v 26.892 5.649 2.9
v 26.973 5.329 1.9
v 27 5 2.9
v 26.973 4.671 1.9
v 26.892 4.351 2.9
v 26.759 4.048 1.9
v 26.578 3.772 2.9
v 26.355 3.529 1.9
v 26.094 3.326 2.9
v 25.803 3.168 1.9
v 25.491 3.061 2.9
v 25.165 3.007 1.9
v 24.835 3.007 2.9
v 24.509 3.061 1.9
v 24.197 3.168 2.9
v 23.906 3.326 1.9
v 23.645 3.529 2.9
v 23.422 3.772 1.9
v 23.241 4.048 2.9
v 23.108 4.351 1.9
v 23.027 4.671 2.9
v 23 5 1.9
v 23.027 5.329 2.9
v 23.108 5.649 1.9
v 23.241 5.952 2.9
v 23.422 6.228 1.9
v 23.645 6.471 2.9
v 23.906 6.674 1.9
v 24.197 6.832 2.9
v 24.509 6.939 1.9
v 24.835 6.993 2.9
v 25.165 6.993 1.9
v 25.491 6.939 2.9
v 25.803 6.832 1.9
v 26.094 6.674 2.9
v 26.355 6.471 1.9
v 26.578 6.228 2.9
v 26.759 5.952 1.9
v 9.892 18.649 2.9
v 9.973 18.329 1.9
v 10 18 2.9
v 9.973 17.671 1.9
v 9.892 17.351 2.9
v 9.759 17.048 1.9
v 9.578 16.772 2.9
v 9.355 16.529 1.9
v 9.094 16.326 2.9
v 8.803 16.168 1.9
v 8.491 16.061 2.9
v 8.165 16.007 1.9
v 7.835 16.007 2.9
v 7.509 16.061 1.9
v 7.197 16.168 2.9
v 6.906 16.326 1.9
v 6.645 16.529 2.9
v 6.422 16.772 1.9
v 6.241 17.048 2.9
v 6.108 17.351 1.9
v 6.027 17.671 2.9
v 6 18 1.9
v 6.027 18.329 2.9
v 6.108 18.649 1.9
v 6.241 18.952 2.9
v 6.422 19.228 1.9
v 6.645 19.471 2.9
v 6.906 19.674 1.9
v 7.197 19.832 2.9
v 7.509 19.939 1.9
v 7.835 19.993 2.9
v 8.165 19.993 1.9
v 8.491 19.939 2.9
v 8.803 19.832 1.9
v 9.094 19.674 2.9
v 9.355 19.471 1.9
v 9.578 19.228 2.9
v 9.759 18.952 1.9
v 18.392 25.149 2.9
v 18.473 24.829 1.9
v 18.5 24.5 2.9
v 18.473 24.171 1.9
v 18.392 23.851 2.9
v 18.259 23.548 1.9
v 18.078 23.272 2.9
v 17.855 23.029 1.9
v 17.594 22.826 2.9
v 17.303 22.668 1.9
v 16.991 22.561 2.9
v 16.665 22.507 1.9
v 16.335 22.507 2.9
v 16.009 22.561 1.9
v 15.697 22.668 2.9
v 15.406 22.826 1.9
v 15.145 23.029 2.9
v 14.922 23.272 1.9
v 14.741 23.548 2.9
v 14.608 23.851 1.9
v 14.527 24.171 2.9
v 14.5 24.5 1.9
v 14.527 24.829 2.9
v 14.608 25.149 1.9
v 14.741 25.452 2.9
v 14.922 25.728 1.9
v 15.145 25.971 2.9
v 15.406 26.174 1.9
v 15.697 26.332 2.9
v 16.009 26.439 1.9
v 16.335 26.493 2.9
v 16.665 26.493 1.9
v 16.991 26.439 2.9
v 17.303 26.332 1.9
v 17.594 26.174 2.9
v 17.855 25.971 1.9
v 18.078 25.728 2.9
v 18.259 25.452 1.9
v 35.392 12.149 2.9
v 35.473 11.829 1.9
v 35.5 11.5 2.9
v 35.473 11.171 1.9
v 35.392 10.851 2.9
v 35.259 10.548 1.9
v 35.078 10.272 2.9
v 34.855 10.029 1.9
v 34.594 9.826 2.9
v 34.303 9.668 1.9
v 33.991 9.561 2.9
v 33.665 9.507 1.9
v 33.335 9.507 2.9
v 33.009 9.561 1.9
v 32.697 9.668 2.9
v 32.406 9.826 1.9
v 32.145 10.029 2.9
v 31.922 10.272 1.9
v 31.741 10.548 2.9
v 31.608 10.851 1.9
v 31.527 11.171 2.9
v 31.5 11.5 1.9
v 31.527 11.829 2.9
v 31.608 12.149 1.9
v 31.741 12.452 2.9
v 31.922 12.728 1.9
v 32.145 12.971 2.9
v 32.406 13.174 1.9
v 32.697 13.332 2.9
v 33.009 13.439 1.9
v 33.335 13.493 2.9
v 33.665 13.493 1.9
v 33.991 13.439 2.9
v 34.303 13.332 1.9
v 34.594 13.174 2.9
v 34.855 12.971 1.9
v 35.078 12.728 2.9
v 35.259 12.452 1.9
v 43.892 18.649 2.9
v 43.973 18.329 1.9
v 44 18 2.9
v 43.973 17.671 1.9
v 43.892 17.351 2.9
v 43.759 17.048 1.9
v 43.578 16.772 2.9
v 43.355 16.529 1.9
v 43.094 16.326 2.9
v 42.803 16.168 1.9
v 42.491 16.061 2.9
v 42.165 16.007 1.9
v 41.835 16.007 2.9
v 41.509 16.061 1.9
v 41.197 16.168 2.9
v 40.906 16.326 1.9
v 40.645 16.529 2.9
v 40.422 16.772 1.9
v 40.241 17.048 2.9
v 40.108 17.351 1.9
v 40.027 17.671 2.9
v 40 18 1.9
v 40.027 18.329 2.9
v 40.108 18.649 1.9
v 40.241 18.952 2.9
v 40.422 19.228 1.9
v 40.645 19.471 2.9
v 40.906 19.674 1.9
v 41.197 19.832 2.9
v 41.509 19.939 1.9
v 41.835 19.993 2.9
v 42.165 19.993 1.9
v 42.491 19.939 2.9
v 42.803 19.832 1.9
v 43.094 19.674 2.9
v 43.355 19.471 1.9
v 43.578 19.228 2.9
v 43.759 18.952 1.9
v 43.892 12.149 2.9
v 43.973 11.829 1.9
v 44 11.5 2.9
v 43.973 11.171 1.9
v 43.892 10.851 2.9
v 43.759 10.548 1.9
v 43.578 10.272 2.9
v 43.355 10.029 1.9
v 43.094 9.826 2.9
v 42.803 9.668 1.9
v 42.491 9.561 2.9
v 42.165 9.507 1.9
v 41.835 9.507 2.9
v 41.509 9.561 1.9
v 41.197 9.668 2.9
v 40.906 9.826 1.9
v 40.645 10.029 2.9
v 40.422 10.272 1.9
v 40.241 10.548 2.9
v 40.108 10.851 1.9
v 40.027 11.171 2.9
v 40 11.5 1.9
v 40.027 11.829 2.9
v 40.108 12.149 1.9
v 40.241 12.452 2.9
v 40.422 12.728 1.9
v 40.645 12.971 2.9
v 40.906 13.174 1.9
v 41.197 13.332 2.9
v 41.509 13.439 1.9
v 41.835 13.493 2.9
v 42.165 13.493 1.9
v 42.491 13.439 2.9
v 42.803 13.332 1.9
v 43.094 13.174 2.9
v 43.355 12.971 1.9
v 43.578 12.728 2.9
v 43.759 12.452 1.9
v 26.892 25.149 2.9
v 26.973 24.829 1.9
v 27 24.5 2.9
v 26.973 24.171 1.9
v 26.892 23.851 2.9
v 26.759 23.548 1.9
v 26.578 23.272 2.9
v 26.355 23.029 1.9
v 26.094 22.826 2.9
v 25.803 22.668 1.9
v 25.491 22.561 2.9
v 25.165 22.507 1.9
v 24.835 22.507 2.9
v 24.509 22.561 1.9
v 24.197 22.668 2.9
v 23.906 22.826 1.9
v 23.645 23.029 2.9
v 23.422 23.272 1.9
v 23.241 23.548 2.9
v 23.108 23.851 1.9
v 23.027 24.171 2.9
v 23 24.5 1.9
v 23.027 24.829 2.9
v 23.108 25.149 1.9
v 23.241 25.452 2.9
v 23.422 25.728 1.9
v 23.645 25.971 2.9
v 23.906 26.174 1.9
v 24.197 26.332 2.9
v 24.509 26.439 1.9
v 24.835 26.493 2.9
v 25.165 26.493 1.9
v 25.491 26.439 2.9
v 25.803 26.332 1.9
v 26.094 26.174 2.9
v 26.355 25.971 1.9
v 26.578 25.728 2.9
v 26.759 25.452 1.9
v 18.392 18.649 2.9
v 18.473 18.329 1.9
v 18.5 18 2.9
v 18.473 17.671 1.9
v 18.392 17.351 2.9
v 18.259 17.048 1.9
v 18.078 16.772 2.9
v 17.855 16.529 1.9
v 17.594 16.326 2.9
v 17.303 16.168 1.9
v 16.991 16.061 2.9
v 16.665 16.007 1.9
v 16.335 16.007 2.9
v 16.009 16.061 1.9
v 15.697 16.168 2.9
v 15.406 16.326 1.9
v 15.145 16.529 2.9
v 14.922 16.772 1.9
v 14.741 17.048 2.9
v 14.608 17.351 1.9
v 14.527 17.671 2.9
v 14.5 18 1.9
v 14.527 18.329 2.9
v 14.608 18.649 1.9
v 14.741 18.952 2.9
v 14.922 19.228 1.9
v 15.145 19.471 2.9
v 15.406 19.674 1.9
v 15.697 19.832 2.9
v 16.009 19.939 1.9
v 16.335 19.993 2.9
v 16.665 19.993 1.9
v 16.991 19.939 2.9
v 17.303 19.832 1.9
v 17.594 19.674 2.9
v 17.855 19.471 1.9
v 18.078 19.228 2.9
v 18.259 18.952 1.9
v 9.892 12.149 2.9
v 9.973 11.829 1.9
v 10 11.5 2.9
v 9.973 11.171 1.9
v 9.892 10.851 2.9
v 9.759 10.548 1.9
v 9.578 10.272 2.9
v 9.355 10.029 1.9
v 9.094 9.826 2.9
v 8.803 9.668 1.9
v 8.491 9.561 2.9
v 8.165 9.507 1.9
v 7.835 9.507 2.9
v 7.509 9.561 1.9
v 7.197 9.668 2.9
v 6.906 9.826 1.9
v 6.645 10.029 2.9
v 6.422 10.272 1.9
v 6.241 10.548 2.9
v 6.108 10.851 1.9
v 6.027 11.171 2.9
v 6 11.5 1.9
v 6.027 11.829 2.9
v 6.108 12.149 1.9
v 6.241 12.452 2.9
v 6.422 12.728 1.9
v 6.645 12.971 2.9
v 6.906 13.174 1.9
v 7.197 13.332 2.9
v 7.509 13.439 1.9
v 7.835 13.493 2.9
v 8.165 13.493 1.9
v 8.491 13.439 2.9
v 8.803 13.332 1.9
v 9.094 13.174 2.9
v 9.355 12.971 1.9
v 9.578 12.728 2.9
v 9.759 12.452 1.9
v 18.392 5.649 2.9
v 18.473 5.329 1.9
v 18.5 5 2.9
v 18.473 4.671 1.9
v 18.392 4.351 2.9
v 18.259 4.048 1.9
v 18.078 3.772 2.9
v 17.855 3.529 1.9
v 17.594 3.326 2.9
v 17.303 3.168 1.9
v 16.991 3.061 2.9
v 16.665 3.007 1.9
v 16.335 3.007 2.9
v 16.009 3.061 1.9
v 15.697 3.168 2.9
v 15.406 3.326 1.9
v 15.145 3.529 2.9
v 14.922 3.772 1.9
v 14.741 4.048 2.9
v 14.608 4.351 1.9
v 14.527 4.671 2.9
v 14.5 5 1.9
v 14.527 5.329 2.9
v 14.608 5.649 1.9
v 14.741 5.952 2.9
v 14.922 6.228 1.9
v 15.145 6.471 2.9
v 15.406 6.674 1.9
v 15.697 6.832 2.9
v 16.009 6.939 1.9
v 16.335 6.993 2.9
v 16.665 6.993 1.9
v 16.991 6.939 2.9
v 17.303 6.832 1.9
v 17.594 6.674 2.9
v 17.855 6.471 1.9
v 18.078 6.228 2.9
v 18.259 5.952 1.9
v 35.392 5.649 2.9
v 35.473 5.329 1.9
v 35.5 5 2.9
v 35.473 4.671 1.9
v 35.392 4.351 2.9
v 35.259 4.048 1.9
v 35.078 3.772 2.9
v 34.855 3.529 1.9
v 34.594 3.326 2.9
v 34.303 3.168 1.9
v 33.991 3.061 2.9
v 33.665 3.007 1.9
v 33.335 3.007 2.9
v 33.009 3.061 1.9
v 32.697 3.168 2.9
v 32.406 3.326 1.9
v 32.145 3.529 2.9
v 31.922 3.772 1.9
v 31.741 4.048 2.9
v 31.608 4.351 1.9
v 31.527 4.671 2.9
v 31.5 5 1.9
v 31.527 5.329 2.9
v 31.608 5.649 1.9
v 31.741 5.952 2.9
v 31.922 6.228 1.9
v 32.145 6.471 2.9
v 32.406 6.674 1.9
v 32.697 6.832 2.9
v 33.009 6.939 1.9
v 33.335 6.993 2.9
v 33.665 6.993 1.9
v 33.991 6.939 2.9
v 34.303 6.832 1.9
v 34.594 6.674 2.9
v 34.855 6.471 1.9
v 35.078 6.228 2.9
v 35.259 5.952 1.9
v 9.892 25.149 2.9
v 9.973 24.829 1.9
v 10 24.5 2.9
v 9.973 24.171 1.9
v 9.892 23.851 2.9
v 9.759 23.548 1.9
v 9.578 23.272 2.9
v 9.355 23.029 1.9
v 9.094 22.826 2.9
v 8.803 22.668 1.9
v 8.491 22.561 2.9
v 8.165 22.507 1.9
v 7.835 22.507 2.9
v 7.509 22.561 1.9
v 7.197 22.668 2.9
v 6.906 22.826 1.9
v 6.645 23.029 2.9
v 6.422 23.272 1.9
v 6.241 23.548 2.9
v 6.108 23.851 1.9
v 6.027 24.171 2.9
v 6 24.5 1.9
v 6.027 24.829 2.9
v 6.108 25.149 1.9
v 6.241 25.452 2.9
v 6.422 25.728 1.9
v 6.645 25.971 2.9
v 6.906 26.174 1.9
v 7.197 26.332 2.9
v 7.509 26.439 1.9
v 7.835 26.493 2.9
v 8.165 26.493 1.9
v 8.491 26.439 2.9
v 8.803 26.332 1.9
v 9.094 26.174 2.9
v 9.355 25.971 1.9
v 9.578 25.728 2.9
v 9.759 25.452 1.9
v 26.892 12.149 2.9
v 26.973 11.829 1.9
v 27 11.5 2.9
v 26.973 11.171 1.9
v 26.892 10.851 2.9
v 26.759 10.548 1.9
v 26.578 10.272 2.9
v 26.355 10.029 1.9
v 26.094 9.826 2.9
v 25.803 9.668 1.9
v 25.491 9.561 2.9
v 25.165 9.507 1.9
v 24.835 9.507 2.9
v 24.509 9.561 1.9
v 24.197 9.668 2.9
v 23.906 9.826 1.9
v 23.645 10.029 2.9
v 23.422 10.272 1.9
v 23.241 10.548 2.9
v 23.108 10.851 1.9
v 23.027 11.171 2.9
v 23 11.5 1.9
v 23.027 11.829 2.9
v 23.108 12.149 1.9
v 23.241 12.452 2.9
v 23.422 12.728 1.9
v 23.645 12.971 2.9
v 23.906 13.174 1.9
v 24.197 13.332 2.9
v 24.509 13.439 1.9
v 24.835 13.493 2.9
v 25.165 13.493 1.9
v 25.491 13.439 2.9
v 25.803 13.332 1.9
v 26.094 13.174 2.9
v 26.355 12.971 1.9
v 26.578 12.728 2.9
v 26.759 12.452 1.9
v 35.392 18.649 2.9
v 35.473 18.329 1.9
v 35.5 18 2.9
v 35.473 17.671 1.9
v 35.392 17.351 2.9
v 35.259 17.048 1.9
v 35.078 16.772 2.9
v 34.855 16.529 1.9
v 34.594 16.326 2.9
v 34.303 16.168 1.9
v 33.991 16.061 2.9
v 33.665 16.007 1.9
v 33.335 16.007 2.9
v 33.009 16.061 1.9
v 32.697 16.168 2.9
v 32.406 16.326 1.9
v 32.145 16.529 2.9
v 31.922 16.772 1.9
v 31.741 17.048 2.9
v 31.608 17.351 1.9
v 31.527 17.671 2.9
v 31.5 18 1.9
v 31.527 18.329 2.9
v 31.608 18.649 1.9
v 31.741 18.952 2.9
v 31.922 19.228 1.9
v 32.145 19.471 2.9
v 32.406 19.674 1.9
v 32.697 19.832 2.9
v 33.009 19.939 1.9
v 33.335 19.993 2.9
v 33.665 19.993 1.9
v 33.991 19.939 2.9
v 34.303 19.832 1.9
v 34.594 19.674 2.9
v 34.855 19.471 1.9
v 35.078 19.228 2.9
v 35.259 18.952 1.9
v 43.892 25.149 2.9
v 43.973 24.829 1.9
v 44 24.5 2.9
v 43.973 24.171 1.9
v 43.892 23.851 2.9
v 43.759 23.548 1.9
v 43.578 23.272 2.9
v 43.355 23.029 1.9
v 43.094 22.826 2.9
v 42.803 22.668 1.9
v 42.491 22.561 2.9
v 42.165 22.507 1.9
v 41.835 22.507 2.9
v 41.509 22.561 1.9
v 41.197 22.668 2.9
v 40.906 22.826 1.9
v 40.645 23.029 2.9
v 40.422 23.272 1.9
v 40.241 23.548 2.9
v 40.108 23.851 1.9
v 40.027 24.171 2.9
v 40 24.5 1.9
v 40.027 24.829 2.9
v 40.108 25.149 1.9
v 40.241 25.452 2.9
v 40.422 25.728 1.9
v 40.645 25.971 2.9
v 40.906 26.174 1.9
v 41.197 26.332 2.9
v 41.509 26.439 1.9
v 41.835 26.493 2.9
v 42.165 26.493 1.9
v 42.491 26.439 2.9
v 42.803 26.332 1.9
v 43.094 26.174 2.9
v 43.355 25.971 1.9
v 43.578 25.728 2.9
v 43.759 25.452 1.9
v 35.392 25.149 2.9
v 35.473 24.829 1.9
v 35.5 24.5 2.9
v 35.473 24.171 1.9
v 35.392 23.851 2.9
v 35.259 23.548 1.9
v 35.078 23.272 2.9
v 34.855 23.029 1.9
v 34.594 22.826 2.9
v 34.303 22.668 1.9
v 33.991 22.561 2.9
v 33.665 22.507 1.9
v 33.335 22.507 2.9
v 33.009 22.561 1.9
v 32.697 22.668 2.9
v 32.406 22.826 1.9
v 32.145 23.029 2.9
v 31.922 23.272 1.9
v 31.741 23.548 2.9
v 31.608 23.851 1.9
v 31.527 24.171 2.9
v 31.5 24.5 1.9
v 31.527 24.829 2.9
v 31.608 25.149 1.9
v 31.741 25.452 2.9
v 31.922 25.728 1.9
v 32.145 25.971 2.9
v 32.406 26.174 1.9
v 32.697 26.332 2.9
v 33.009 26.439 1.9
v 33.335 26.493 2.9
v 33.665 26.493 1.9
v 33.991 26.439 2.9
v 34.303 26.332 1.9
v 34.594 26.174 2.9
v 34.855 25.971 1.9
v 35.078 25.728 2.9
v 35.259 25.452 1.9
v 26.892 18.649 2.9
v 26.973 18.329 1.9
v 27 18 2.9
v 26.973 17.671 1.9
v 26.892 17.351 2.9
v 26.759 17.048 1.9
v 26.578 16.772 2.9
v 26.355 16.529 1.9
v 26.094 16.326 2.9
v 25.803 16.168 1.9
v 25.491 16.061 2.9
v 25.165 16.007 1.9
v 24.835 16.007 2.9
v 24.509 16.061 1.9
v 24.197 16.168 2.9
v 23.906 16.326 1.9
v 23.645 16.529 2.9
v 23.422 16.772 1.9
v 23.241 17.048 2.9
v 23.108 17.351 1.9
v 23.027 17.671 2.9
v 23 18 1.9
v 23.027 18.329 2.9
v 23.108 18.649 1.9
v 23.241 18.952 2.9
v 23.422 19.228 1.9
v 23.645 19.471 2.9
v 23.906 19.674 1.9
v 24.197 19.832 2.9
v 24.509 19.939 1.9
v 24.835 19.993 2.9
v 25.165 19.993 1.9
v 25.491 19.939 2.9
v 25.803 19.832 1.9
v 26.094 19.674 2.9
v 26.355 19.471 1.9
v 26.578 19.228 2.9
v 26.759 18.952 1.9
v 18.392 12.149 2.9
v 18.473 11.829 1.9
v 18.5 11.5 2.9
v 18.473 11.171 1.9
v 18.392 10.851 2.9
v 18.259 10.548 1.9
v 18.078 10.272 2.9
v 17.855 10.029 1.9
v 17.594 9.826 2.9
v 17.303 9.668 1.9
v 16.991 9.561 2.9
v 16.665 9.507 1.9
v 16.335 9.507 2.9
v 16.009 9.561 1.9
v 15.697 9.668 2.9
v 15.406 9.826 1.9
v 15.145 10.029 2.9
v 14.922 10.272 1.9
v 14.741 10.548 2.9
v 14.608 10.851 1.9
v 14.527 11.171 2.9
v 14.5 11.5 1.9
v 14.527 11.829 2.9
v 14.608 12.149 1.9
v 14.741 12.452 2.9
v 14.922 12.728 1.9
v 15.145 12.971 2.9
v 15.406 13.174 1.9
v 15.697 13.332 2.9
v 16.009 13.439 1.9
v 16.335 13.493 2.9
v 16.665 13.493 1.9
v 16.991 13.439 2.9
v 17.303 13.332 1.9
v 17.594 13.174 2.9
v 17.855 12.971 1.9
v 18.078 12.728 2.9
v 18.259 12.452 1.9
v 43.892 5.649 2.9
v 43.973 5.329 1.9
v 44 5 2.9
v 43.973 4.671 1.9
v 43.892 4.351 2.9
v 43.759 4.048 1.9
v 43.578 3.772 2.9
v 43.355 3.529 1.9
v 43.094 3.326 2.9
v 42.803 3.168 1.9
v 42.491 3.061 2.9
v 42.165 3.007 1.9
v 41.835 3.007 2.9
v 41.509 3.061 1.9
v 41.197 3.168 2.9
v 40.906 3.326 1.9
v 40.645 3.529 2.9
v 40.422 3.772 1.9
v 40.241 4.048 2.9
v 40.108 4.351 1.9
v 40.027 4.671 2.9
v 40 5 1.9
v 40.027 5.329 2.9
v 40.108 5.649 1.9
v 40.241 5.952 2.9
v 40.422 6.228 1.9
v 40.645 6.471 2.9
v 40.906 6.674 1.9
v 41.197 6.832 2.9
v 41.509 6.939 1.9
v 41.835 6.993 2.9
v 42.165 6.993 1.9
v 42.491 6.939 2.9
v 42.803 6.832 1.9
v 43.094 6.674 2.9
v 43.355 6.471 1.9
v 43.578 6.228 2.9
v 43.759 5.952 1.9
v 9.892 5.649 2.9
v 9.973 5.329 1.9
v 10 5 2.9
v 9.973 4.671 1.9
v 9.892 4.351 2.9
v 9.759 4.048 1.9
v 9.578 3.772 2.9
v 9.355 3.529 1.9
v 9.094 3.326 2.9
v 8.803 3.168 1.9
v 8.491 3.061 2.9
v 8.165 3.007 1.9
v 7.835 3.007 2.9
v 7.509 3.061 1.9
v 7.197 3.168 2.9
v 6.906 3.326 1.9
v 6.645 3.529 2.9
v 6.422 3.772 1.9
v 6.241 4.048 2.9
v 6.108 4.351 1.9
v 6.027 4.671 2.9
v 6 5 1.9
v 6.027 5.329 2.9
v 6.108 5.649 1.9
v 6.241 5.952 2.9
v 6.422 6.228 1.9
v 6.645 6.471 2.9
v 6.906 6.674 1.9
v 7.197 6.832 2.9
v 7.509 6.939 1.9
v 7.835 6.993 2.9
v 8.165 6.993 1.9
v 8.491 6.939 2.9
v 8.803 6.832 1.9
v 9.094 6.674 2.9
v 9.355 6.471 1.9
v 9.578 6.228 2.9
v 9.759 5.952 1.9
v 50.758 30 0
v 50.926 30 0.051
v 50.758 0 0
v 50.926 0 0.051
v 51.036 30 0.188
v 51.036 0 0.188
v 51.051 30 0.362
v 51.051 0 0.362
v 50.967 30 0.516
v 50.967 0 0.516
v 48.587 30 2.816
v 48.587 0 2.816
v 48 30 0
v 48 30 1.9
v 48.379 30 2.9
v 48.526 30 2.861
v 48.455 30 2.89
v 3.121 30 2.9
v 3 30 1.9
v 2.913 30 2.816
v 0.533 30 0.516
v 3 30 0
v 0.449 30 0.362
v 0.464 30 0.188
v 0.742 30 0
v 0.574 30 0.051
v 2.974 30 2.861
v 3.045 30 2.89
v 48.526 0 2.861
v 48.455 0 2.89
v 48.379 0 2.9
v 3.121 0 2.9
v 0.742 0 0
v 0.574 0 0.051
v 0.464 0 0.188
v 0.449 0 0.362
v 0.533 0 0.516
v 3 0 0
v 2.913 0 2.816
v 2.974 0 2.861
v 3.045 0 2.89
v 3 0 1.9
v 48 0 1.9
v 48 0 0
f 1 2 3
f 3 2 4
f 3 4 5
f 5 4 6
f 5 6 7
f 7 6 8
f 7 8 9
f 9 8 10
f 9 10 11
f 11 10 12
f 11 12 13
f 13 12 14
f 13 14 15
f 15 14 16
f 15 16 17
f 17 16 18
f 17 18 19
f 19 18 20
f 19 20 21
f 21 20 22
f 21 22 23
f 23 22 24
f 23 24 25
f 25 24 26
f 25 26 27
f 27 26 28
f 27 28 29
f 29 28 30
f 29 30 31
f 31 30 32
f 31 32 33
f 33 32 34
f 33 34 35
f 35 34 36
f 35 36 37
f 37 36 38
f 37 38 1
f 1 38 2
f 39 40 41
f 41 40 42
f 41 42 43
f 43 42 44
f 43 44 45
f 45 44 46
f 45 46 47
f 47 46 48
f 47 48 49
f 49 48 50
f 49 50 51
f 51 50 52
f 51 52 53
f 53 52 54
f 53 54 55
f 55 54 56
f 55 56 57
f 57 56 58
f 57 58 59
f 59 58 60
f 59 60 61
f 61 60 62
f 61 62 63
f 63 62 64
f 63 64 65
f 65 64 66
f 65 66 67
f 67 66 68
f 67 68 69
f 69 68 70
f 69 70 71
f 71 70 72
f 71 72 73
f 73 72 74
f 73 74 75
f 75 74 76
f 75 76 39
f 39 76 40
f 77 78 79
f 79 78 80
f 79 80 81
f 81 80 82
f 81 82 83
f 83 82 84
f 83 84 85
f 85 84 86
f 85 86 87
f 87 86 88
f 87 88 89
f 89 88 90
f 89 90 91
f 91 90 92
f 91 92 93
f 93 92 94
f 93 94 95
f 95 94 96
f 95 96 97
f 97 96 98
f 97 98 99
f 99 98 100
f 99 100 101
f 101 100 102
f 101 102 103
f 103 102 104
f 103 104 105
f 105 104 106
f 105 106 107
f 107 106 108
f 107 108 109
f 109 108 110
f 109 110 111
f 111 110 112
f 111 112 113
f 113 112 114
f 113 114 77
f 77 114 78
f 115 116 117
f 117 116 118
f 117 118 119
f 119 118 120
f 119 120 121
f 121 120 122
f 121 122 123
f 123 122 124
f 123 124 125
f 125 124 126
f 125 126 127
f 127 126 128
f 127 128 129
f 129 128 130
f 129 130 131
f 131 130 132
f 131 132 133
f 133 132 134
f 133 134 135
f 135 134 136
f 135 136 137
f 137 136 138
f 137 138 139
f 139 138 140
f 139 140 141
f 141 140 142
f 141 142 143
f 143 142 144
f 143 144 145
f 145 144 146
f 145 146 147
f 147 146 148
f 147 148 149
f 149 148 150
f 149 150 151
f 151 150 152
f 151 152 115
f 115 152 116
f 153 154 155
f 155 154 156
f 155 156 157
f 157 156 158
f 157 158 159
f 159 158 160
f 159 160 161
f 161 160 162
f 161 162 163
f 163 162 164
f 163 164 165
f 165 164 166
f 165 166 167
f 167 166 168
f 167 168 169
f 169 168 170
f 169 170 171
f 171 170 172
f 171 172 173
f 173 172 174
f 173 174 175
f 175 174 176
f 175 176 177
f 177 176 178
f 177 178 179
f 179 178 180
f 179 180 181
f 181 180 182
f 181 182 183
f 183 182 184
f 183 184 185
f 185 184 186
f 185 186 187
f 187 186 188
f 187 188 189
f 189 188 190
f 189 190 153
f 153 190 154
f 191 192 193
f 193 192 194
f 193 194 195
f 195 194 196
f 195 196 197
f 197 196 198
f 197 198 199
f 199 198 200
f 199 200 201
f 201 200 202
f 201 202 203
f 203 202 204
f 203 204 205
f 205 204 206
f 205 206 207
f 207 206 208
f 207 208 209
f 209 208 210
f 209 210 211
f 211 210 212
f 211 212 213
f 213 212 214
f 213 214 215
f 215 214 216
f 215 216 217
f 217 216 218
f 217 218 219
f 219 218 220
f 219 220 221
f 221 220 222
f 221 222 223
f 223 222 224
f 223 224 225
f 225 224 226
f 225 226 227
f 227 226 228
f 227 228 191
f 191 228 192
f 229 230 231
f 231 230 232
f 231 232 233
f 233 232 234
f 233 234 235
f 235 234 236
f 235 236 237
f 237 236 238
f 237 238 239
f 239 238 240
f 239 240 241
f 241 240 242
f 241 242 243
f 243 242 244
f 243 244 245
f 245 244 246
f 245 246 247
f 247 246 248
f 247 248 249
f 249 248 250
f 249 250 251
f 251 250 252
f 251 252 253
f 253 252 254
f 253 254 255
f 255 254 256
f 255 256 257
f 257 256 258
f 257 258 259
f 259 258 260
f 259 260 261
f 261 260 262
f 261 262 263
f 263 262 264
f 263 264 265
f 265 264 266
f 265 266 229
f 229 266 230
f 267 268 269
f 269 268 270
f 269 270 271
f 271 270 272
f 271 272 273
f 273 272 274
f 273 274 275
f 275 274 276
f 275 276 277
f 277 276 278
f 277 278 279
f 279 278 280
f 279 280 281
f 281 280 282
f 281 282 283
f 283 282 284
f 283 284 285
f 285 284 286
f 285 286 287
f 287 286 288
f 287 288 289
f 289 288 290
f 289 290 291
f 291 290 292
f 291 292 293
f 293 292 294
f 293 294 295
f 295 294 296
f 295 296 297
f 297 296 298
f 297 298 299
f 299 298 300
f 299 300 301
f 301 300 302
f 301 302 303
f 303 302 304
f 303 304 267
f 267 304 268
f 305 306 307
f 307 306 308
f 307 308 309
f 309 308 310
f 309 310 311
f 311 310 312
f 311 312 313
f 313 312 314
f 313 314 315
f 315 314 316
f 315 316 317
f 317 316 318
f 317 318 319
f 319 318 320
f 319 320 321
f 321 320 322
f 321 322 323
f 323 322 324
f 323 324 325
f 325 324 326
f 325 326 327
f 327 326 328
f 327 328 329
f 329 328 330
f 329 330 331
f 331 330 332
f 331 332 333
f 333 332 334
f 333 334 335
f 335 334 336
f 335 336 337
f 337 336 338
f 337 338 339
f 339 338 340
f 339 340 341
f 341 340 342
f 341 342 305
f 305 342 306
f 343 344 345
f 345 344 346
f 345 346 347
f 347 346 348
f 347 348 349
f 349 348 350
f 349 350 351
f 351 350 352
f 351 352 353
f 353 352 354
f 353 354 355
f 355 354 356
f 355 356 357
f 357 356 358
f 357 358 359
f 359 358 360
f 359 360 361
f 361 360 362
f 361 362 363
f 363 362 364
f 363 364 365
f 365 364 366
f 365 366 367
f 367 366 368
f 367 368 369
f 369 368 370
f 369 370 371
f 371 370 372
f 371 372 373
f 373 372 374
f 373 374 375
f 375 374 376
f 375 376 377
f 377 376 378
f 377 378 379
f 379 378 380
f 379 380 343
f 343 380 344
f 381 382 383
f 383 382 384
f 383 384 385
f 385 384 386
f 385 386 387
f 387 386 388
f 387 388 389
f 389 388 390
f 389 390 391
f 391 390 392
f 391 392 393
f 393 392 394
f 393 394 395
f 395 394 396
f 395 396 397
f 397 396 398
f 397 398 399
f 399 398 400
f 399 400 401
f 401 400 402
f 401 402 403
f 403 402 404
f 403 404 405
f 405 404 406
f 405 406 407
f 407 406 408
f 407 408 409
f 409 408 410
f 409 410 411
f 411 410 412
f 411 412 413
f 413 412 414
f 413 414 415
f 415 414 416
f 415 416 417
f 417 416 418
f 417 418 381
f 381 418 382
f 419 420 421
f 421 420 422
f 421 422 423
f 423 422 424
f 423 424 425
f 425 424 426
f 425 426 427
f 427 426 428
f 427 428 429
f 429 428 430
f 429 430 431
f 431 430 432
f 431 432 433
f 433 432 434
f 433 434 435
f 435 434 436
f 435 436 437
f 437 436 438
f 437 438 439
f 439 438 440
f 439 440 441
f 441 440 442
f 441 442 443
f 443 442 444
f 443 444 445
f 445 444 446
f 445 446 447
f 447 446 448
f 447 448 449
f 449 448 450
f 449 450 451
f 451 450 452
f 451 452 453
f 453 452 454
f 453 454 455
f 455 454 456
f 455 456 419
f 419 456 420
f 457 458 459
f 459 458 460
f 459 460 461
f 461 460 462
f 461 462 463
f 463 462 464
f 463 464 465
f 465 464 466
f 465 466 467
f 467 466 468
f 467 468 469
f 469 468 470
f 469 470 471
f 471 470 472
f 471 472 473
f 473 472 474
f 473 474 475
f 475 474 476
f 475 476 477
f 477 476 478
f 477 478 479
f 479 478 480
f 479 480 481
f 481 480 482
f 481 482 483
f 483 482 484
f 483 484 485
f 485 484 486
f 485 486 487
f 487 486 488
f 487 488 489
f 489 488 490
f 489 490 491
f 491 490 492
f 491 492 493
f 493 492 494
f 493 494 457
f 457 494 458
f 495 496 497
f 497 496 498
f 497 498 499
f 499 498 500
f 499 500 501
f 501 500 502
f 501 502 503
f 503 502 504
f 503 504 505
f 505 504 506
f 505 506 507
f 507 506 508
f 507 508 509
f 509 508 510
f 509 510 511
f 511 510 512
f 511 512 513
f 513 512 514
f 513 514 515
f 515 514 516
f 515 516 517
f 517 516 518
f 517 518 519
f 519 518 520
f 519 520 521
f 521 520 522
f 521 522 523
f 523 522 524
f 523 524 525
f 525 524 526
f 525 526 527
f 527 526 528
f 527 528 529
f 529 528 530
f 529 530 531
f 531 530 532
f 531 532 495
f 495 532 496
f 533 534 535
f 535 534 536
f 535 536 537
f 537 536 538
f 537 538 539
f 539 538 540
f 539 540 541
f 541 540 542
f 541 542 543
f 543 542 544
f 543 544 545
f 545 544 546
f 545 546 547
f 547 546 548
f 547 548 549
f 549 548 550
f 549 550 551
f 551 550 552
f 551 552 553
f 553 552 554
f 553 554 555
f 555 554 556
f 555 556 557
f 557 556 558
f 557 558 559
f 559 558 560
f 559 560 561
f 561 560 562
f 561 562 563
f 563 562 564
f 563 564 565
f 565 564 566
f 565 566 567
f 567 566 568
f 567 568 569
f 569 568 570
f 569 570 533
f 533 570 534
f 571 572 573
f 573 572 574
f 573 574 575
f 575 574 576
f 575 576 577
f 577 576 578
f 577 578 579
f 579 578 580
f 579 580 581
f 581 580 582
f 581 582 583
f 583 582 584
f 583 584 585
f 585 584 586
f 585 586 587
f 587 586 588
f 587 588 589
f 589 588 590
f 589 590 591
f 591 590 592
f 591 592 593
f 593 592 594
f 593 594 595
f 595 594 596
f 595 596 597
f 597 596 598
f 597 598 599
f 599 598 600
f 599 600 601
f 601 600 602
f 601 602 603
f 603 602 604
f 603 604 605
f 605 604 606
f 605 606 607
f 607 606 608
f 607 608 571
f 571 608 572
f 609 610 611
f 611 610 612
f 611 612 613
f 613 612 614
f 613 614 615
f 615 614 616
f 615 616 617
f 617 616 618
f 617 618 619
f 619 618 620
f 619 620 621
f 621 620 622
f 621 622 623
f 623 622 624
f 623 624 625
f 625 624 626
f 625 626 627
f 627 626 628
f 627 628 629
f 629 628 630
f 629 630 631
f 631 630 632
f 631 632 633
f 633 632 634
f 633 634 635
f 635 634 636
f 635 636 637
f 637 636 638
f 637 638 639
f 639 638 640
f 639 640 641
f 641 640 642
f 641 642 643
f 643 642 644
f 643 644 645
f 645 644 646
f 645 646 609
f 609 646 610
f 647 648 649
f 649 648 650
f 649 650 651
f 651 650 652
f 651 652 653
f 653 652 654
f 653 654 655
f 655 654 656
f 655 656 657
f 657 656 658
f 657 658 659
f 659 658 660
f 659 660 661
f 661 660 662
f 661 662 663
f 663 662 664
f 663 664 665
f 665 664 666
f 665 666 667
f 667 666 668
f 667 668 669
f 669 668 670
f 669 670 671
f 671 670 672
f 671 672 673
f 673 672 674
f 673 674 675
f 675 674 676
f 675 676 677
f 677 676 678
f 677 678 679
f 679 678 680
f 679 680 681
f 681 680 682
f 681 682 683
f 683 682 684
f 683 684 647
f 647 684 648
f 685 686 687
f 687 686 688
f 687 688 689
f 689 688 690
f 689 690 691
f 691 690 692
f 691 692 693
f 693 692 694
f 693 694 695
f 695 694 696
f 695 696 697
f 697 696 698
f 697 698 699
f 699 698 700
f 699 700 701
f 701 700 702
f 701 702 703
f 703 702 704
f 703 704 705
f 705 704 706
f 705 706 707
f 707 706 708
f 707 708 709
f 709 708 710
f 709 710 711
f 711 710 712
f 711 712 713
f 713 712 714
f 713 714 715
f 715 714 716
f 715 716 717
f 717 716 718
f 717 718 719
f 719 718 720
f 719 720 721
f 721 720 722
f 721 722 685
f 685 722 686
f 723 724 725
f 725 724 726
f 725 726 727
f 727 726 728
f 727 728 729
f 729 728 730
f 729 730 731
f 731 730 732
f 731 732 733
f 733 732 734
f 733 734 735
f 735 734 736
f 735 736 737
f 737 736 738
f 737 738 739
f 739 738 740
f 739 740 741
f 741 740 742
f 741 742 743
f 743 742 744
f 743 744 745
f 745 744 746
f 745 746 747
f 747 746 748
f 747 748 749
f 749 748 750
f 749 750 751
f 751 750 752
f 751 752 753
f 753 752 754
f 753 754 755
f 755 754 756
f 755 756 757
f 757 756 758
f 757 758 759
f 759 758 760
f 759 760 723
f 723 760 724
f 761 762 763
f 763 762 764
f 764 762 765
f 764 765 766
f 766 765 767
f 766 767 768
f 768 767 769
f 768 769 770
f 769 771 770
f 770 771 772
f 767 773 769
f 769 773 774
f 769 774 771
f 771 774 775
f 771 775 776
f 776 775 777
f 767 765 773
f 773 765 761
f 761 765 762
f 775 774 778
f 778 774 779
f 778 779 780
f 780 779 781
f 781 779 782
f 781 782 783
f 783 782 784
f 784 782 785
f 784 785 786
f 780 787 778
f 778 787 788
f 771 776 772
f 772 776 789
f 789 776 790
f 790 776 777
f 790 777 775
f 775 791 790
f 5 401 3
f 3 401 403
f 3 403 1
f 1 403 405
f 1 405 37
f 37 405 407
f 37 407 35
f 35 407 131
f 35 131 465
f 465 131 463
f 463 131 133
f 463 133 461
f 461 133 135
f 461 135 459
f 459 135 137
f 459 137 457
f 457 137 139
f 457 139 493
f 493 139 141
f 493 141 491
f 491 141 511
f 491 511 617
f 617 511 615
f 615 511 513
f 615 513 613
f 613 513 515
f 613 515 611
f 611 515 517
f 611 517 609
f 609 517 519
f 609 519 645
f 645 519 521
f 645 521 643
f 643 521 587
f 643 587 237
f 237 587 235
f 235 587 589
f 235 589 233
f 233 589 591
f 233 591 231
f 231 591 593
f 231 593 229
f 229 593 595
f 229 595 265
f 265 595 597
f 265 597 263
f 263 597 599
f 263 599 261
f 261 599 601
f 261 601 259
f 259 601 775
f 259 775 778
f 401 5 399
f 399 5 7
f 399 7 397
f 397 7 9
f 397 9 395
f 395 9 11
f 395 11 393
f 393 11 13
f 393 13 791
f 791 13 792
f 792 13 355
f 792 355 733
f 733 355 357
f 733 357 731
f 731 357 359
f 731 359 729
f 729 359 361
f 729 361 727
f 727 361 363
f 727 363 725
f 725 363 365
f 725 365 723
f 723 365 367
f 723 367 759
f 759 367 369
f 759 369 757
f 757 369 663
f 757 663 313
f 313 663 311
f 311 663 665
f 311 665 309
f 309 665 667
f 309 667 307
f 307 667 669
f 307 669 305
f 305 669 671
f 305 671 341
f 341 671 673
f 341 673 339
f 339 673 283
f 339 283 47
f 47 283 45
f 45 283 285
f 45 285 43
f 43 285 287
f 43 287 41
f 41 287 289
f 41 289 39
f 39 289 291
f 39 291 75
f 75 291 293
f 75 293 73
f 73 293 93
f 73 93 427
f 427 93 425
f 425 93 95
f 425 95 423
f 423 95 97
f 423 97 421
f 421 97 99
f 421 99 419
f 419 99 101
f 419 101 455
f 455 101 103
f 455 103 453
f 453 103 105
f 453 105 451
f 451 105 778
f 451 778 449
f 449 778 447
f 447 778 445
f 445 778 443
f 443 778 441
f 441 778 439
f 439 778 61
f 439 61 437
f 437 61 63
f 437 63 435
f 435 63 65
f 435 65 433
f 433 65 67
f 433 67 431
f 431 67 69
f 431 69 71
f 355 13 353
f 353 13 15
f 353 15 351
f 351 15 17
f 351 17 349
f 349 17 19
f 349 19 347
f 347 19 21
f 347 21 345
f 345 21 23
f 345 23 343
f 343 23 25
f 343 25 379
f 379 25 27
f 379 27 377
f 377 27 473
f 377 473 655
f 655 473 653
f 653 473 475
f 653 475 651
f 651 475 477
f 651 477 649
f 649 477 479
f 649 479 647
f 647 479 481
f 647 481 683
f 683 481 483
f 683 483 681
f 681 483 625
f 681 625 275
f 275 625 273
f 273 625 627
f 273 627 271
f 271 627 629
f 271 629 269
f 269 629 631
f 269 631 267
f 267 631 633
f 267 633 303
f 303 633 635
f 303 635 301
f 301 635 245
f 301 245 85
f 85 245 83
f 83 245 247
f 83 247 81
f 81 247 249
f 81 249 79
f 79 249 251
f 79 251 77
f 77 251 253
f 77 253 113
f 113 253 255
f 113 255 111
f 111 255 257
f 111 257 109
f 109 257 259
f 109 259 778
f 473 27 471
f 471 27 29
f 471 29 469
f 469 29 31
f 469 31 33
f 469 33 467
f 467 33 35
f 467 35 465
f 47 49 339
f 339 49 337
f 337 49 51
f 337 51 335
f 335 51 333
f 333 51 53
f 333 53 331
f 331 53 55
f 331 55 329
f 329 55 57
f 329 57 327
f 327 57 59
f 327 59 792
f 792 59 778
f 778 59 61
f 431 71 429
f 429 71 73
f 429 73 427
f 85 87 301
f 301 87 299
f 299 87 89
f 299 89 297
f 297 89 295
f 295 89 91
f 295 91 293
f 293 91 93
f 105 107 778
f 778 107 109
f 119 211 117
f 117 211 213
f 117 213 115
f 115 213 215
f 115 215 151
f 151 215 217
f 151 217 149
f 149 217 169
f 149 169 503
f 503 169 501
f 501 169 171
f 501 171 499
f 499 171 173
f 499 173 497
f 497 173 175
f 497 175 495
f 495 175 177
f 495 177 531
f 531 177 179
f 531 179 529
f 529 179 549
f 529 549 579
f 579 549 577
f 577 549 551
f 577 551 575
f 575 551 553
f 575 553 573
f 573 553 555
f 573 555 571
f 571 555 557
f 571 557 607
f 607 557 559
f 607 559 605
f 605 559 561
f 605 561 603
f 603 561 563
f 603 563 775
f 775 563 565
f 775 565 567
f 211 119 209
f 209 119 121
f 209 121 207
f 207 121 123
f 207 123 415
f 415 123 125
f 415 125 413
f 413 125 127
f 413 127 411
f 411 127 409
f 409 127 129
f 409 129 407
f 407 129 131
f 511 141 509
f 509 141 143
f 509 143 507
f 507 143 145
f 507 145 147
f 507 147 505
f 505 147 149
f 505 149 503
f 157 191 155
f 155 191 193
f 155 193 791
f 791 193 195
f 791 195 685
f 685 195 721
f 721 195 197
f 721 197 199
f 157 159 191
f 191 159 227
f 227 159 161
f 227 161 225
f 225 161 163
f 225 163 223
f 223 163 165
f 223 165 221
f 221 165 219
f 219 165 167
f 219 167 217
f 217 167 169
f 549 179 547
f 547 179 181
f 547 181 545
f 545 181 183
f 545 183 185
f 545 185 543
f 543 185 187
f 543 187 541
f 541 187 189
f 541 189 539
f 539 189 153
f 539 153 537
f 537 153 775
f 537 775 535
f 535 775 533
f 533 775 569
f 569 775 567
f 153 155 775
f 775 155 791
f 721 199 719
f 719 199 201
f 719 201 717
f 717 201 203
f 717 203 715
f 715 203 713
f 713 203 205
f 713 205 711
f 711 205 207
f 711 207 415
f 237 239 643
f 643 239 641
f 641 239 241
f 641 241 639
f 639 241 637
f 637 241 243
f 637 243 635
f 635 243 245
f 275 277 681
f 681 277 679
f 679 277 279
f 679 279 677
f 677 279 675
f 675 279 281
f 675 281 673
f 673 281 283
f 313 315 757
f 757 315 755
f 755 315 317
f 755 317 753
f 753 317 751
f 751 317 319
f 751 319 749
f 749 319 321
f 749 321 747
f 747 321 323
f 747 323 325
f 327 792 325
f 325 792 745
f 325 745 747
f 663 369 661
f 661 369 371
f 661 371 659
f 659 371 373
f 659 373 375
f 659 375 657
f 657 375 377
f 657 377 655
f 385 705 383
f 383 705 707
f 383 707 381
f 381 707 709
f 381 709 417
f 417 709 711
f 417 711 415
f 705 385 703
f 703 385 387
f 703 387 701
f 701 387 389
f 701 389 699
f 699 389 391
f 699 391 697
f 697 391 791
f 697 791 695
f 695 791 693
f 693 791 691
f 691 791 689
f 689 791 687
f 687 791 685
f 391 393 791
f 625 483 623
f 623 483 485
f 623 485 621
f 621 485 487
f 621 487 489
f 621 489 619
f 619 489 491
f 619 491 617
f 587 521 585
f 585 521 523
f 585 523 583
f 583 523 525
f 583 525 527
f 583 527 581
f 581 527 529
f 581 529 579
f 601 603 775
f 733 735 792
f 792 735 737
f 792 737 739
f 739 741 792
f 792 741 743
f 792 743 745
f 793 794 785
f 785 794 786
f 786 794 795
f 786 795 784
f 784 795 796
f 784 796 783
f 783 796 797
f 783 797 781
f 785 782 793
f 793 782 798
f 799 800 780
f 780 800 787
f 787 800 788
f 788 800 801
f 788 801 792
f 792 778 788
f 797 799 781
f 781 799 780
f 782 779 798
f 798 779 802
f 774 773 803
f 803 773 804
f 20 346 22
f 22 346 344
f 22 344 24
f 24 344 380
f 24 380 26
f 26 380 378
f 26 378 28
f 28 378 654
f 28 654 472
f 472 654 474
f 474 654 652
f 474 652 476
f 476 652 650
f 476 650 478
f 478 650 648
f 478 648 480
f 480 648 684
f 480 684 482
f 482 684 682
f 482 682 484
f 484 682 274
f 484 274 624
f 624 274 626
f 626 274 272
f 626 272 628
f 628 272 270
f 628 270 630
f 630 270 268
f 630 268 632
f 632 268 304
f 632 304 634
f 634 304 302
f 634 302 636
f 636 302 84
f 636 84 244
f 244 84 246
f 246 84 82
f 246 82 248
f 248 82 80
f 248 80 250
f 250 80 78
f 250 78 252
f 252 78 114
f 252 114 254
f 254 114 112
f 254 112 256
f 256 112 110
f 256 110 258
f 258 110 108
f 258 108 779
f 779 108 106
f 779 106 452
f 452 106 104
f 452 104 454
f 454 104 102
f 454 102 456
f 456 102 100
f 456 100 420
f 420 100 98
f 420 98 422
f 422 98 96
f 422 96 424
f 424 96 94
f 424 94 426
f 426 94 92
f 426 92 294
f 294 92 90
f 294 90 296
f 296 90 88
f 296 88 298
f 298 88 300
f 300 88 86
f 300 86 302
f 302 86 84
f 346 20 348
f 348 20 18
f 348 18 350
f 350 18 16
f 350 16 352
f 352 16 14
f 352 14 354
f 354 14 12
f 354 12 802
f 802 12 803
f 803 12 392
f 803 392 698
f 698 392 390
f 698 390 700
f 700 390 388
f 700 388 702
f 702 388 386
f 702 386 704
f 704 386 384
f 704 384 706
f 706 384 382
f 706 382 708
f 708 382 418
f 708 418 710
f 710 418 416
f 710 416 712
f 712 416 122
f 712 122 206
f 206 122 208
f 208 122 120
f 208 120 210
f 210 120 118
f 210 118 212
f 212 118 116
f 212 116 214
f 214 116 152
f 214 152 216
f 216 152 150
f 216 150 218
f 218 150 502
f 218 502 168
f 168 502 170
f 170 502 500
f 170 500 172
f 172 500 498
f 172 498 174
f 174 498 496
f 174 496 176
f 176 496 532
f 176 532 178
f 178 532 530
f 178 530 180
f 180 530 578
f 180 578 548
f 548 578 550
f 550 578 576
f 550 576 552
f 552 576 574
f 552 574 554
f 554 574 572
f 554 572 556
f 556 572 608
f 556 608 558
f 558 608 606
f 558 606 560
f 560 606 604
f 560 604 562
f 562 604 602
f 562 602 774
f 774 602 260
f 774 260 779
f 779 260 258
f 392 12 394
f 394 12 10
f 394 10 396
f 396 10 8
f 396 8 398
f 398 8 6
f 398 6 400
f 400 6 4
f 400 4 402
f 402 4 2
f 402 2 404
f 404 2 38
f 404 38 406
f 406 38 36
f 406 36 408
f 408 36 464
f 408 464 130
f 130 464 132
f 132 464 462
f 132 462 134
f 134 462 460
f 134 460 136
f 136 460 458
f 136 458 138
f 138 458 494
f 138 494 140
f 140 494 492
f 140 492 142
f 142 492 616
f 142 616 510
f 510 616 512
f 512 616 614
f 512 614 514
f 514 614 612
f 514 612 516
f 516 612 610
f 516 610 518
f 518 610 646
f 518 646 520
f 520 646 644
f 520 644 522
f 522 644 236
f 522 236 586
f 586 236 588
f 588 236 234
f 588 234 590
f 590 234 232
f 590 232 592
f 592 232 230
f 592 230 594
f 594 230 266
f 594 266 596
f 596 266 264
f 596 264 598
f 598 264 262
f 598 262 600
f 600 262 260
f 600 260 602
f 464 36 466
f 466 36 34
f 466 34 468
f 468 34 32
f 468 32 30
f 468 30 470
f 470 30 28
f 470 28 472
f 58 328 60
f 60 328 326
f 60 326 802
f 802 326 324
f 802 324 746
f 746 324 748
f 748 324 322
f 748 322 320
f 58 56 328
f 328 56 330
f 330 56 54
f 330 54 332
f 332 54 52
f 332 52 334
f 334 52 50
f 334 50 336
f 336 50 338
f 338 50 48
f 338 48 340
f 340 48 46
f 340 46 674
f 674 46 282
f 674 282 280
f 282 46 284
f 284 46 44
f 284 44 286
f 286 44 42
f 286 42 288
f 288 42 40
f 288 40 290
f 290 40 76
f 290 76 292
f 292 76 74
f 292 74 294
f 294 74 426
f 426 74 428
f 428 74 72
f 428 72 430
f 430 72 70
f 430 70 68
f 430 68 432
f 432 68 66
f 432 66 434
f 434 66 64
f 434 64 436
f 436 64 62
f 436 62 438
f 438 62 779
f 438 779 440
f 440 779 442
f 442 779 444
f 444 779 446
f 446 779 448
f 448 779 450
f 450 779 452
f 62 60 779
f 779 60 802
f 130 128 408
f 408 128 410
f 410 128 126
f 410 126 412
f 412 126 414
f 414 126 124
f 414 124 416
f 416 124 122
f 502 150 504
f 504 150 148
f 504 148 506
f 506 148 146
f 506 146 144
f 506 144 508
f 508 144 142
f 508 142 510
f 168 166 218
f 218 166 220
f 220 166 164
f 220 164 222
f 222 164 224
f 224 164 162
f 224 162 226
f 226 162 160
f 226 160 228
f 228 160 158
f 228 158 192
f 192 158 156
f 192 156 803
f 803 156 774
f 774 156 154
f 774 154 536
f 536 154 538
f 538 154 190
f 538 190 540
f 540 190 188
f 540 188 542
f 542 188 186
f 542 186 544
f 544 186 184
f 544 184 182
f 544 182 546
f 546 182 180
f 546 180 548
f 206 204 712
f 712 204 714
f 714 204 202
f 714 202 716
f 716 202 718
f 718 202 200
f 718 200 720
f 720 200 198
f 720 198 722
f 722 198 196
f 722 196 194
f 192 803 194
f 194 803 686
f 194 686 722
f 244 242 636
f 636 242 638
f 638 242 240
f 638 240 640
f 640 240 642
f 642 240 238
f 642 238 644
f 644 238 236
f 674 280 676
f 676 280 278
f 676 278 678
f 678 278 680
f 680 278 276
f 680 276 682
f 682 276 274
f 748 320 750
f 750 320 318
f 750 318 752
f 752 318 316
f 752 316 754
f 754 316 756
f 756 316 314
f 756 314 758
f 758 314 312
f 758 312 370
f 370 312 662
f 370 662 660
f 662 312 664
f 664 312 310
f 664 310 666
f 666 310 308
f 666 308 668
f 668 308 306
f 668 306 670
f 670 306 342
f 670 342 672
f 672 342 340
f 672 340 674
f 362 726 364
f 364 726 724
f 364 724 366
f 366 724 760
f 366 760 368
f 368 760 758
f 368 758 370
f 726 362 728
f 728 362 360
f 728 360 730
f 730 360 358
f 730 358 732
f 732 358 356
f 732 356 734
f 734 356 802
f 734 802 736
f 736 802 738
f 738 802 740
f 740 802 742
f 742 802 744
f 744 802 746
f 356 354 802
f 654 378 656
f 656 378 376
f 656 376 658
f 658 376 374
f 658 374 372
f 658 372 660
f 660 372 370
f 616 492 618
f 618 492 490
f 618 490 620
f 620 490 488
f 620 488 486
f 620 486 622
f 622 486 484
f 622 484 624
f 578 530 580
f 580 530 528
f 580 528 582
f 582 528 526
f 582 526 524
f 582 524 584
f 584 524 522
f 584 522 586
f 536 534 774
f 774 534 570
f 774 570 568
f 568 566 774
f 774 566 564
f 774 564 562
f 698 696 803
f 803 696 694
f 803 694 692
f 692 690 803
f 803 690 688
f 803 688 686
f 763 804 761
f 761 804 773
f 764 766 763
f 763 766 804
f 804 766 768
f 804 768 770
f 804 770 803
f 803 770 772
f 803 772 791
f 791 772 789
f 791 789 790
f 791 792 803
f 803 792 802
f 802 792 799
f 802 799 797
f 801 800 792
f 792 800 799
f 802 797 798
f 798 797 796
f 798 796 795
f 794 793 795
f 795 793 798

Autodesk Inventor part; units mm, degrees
ref_plane "YZ Plane" through (0, 0, 0) normal (1, 0, 0) x (0, 1, 0)
ref_plane "XZ Plane" through (0, 0, 0) normal (0, 1, 0) x (-1, 0, 0)
ref_plane "XY Plane" through (0, 0, 0) normal (0, 0, 1) x (1, 0, 0)
sketch "Sketch1" plane through (0, 0, 0) normal (0, 0, 1) x (1, 0, 0)
  line L0 (0, 0) -> (51.5, 0)
  line L1 (51.5, 0) -> (51.5, 30)
  line L2 (51.5, 30) -> (0, 30)
  line L3 (0, 30) -> (0, 0)
  dimension "d0" = 51.5
  dimension "d1" = 30
extrude "Extrusion1" add sketch "Sketch1" along normal blind 2.9
sketch "Sketch2" plane through (0, 0, 0) normal (0, -1, 0) x (1, 0, 0)
  line L0 (0, 0) -> (0, 2.9) projected
  line L1 (0, 2.9) -> (3, 2.9)
  line L2 (51.5, 2.9) -> (0, 2.9) projected
  line L3 (51.5, 0) -> (0, 0) projected
  line L4 (3, 2.9) -> (0, 0)
  line L5 (51.5, 2.9) -> (48.5, 2.9)
  line L6 (48.5, 2.9) -> (51.5, 0)
  line L7 (3, 2.9) -> (3, 0)
  line L8 (3, 0) -> (48, 0)
  line L9 (48, 0) -> (48, 1.9)
  line L10 (48, 1.9) -> (3, 1.9)
  line L11 (3, 1.9) -> (3, 0)
  line L12 (51.5, 2.9) -> (51.5, 0)
  dimension "d4" = 3
  dimension "d5" = 3
  dimension "d6" = 1.9
extrude "Extrusion2" cut sketch "Sketch2" against normal through all contours L0 L1 L4 | L7 L10 L9 L3 | L2 L12 L6
fillet "Fillet1" radius 0.3 4 edges at (3, 15, 2.9) (0, 15, 0) (48.5, 15, 2.9) (51.5, 15, 0)
sketch "Sketch4" plane through (48, 0, 1.9) normal (0, 0, -1) x (-1, 0, 0)
  line L0 (45, 0) -> (0, 0) projected
  line L1 (45, 0) -> (40, 0)
  line L2 (40, 0) -> (40, 5)
  circle A0 centre (40, 5) radius 2
  circle A1 centre (31.5, 5) radius 2
  circle A2 centre (23, 5) radius 2
  circle A3 centre (14.5, 5) radius 2
  circle A4 centre (6, 5) radius 2
  circle A5 centre (40, 11.5) radius 2
  circle A6 centre (31.5, 11.5) radius 2
  circle A7 centre (23, 11.5) radius 2
  circle A8 centre (14.5, 11.5) radius 2
  circle A9 centre (6, 11.5) radius 2
  circle A10 centre (40, 18) radius 2
  circle A11 centre (31.5, 18) radius 2
  circle A12 centre (23, 18) radius 2
  circle A13 centre (14.5, 18) radius 2
  circle A14 centre (6, 18) radius 2
  circle A15 centre (40, 24.5) radius 2
  circle A16 centre (31.5, 24.5) radius 2
  circle A17 centre (23, 24.5) radius 2
  circle A18 centre (14.5, 24.5) radius 2
  circle A19 centre (6, 24.5) radius 2
  point P0 (48, 0)
  dimension "d10" = 5
  dimension "d11" = 5
  dimension "d12" = 4
  dimension "d15" = 8.5
  dimension "d18" = 6.5
extrude "Extrusion3" cut sketch "Sketch4" against normal blind 2.9
properties part number "PalmSupport"
